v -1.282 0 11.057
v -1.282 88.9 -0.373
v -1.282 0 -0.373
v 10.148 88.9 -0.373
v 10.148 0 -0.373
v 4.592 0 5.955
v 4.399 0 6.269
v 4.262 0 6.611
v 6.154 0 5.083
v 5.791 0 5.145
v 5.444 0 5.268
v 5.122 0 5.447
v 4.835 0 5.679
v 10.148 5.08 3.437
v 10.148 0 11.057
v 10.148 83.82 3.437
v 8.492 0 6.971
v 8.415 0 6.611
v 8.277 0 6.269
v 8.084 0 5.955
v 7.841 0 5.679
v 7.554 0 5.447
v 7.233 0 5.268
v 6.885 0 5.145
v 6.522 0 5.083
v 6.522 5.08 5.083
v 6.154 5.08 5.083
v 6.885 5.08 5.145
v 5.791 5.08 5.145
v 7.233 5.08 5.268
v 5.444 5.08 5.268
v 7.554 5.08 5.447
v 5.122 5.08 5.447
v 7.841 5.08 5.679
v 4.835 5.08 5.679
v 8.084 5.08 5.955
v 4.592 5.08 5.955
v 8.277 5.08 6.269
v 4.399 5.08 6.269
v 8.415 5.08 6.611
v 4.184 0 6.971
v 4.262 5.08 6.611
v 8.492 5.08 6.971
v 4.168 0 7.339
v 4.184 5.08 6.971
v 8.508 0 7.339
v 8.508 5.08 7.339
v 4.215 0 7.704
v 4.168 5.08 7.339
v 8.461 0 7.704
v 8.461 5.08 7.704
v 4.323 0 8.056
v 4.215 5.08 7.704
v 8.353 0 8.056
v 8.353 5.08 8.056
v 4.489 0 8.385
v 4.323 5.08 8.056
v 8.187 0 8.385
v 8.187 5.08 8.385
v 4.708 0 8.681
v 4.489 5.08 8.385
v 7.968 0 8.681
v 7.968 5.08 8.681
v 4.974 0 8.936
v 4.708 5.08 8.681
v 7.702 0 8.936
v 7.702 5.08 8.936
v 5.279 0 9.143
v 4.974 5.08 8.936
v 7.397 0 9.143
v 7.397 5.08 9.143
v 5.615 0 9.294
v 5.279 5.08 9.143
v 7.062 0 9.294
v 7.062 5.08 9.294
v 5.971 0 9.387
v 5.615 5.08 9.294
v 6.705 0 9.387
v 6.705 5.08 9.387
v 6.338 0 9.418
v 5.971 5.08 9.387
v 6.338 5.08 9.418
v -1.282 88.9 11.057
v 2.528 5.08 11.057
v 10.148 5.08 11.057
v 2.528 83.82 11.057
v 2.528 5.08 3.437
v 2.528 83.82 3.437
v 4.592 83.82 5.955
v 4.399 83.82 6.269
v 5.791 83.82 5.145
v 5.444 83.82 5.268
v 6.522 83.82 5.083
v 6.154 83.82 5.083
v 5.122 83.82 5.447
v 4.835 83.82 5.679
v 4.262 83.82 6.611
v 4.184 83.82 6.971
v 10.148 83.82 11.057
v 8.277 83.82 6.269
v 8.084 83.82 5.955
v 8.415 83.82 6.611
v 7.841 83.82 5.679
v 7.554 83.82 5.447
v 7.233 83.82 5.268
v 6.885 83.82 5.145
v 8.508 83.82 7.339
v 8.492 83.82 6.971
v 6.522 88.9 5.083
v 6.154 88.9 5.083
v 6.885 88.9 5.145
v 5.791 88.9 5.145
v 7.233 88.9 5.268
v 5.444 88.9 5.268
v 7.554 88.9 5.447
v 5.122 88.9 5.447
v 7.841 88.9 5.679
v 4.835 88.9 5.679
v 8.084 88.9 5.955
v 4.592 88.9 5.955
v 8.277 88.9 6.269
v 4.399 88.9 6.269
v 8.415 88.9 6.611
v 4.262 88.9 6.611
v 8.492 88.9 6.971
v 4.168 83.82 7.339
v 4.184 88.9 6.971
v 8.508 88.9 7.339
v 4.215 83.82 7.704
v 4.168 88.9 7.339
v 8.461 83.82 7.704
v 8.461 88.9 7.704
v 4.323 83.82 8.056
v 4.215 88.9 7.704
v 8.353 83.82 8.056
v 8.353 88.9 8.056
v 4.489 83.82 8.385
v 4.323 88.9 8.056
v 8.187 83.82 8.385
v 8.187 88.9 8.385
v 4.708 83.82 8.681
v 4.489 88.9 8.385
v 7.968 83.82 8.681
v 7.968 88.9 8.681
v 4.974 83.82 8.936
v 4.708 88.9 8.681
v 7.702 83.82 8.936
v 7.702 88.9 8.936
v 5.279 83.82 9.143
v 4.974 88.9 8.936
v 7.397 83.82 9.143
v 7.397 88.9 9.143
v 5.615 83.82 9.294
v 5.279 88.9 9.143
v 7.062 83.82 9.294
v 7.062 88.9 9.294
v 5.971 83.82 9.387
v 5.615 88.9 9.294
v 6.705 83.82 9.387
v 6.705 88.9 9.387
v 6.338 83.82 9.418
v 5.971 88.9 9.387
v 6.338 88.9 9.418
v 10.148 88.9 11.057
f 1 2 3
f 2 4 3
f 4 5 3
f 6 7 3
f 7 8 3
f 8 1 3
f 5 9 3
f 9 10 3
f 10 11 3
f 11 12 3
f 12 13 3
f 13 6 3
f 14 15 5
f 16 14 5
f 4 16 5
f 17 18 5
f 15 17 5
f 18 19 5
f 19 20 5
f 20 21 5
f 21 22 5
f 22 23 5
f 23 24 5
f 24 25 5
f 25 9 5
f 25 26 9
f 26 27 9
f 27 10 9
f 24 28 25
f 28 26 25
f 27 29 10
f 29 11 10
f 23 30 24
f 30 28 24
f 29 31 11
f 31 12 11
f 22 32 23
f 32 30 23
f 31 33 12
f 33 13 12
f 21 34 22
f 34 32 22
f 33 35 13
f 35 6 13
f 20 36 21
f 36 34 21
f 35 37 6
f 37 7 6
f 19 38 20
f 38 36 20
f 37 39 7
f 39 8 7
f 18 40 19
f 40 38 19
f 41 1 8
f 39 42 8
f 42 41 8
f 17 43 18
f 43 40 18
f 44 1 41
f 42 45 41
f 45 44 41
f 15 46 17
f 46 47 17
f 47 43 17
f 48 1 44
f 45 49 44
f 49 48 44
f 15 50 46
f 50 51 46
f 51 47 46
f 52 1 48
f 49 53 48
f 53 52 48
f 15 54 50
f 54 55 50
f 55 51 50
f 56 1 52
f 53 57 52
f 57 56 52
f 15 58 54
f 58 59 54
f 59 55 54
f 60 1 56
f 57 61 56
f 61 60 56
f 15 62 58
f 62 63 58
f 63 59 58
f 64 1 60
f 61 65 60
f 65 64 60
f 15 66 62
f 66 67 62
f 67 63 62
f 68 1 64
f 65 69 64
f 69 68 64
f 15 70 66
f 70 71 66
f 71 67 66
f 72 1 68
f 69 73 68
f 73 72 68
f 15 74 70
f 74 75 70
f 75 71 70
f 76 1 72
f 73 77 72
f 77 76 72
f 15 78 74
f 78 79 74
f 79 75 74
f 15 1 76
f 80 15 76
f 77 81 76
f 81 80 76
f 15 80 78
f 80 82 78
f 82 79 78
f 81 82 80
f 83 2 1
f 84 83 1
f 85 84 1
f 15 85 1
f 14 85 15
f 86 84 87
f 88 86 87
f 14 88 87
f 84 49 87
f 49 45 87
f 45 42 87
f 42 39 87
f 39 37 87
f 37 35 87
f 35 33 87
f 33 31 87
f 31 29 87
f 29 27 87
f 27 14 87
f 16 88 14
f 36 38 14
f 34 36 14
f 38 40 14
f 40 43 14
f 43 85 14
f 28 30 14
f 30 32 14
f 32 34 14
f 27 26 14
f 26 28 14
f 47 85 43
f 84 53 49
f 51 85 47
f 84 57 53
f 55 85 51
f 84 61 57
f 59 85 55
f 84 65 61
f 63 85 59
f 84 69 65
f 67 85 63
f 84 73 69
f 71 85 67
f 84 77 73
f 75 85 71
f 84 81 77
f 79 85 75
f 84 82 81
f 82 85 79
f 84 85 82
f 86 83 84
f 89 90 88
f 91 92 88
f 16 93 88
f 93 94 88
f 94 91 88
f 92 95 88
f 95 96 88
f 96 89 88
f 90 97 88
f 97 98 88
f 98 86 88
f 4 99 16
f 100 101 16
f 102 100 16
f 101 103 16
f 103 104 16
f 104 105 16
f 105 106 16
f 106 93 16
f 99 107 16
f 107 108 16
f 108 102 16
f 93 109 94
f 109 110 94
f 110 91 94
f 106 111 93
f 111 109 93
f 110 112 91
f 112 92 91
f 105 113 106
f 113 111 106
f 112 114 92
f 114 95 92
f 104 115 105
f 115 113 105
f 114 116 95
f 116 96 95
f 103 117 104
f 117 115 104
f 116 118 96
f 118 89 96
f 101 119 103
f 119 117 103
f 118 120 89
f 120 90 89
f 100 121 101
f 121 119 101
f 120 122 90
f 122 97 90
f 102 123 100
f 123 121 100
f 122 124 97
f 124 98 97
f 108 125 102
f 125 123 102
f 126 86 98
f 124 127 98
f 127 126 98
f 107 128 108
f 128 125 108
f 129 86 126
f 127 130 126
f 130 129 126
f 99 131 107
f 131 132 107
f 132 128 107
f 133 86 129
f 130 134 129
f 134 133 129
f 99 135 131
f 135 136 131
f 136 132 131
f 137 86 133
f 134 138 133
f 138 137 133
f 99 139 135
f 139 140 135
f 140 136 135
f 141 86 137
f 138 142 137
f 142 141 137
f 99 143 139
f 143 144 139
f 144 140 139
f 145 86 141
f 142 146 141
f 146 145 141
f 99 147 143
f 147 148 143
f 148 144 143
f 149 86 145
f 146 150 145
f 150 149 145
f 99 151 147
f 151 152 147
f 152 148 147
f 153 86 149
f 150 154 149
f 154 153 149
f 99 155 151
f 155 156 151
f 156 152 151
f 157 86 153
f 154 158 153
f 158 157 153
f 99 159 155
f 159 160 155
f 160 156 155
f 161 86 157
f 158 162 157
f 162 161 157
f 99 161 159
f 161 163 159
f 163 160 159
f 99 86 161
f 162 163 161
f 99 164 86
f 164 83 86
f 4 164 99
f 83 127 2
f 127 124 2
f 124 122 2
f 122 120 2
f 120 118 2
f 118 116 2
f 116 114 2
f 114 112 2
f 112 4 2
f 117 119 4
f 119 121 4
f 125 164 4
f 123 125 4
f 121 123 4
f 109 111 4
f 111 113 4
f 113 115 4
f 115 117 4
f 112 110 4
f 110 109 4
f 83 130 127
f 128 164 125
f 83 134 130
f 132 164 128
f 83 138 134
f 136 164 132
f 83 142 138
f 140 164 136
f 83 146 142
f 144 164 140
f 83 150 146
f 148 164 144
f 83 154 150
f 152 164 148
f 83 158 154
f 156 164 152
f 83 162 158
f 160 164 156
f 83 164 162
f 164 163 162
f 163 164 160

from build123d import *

# Parameters (mm, degrees)
SKETCH2_W           = 11.43
SKETCH2_H           = 11.43
BOSS_EXTRUDE1_DEPTH = 5.08
BOSS_EXTRUDE2_DEPTH = 83.82
SKETCH4_W           = 7.62
SKETCH4_H           = 5.08
BOSS_EXTRUDE3_DEPTH = 7.62
SKETCH5_R           = 2.1717
CUT_EXTRUDE1_DEPTH  = 5.08
SKETCH6_R           = 2.1717
CUT_EXTRUDE2_DEPTH  = 5.08


with BuildPart() as part:
    # Sketch2 → Boss-Extrude1 (new body)
    with BuildSketch(Plane(origin=(0, 0, 0), x_dir=(1, 0, 0), z_dir=(0, 1, 0))):
        with Locations((4.433171137, -5.341620142)):
            Rectangle(SKETCH2_W, SKETCH2_H)
    extrude(amount=BOSS_EXTRUDE1_DEPTH)

    # Sketch3 → Boss-Extrude2 (add)
    with BuildSketch(Plane(origin=(0, 5.08, 0), x_dir=(1, 0, 0), z_dir=(0, 1, 0))):
        Polygon((-1.281828863, -11.056620142), (2.528171137, -11.056620142), (2.528171137, -3.436620142), (10.148171137, -3.436620142), (10.148171137, 0.373379858), (2.528171137, 0.373379858), (-1.281828863, 0.373379858), (-1.281828863, -3.436620142), align=None)
    extrude(amount=BOSS_EXTRUDE2_DEPTH)

    # Sketch4 → Boss-Extrude3 (add)
    with BuildSketch(Plane(origin=(2.528171137, 0, 0), x_dir=(0, 0, -1), z_dir=(1, 0, 0))):
        with Locations((-7.246620142, 86.36)):
            Rectangle(SKETCH4_W, SKETCH4_H)
    extrude(amount=BOSS_EXTRUDE3_DEPTH)

    # Sketch5 → Cut-Extrude1 (cut)
    with BuildSketch(Plane(origin=(0, 88.9, 0), x_dir=(1, 0, 0), z_dir=(0, 1, 0))):
        with Locations(Location((6.338171137, -7.246620142, 0), (0, 0, 270))):
            Circle(SKETCH5_R)
    extrude(amount=-CUT_EXTRUDE1_DEPTH, mode=Mode.SUBTRACT)

    # Sketch6 → Cut-Extrude2 (cut)
    with BuildSketch(Plane(origin=(0, 5.08, 0), x_dir=(1, 0, 0), z_dir=(0, 1, 0))):
        with Locations(Location((6.338171137, -7.246620142, 0), (0, 0, 270))):
            Circle(SKETCH6_R)
    extrude(amount=-CUT_EXTRUDE2_DEPTH, mode=Mode.SUBTRACT)


solid = part.part
